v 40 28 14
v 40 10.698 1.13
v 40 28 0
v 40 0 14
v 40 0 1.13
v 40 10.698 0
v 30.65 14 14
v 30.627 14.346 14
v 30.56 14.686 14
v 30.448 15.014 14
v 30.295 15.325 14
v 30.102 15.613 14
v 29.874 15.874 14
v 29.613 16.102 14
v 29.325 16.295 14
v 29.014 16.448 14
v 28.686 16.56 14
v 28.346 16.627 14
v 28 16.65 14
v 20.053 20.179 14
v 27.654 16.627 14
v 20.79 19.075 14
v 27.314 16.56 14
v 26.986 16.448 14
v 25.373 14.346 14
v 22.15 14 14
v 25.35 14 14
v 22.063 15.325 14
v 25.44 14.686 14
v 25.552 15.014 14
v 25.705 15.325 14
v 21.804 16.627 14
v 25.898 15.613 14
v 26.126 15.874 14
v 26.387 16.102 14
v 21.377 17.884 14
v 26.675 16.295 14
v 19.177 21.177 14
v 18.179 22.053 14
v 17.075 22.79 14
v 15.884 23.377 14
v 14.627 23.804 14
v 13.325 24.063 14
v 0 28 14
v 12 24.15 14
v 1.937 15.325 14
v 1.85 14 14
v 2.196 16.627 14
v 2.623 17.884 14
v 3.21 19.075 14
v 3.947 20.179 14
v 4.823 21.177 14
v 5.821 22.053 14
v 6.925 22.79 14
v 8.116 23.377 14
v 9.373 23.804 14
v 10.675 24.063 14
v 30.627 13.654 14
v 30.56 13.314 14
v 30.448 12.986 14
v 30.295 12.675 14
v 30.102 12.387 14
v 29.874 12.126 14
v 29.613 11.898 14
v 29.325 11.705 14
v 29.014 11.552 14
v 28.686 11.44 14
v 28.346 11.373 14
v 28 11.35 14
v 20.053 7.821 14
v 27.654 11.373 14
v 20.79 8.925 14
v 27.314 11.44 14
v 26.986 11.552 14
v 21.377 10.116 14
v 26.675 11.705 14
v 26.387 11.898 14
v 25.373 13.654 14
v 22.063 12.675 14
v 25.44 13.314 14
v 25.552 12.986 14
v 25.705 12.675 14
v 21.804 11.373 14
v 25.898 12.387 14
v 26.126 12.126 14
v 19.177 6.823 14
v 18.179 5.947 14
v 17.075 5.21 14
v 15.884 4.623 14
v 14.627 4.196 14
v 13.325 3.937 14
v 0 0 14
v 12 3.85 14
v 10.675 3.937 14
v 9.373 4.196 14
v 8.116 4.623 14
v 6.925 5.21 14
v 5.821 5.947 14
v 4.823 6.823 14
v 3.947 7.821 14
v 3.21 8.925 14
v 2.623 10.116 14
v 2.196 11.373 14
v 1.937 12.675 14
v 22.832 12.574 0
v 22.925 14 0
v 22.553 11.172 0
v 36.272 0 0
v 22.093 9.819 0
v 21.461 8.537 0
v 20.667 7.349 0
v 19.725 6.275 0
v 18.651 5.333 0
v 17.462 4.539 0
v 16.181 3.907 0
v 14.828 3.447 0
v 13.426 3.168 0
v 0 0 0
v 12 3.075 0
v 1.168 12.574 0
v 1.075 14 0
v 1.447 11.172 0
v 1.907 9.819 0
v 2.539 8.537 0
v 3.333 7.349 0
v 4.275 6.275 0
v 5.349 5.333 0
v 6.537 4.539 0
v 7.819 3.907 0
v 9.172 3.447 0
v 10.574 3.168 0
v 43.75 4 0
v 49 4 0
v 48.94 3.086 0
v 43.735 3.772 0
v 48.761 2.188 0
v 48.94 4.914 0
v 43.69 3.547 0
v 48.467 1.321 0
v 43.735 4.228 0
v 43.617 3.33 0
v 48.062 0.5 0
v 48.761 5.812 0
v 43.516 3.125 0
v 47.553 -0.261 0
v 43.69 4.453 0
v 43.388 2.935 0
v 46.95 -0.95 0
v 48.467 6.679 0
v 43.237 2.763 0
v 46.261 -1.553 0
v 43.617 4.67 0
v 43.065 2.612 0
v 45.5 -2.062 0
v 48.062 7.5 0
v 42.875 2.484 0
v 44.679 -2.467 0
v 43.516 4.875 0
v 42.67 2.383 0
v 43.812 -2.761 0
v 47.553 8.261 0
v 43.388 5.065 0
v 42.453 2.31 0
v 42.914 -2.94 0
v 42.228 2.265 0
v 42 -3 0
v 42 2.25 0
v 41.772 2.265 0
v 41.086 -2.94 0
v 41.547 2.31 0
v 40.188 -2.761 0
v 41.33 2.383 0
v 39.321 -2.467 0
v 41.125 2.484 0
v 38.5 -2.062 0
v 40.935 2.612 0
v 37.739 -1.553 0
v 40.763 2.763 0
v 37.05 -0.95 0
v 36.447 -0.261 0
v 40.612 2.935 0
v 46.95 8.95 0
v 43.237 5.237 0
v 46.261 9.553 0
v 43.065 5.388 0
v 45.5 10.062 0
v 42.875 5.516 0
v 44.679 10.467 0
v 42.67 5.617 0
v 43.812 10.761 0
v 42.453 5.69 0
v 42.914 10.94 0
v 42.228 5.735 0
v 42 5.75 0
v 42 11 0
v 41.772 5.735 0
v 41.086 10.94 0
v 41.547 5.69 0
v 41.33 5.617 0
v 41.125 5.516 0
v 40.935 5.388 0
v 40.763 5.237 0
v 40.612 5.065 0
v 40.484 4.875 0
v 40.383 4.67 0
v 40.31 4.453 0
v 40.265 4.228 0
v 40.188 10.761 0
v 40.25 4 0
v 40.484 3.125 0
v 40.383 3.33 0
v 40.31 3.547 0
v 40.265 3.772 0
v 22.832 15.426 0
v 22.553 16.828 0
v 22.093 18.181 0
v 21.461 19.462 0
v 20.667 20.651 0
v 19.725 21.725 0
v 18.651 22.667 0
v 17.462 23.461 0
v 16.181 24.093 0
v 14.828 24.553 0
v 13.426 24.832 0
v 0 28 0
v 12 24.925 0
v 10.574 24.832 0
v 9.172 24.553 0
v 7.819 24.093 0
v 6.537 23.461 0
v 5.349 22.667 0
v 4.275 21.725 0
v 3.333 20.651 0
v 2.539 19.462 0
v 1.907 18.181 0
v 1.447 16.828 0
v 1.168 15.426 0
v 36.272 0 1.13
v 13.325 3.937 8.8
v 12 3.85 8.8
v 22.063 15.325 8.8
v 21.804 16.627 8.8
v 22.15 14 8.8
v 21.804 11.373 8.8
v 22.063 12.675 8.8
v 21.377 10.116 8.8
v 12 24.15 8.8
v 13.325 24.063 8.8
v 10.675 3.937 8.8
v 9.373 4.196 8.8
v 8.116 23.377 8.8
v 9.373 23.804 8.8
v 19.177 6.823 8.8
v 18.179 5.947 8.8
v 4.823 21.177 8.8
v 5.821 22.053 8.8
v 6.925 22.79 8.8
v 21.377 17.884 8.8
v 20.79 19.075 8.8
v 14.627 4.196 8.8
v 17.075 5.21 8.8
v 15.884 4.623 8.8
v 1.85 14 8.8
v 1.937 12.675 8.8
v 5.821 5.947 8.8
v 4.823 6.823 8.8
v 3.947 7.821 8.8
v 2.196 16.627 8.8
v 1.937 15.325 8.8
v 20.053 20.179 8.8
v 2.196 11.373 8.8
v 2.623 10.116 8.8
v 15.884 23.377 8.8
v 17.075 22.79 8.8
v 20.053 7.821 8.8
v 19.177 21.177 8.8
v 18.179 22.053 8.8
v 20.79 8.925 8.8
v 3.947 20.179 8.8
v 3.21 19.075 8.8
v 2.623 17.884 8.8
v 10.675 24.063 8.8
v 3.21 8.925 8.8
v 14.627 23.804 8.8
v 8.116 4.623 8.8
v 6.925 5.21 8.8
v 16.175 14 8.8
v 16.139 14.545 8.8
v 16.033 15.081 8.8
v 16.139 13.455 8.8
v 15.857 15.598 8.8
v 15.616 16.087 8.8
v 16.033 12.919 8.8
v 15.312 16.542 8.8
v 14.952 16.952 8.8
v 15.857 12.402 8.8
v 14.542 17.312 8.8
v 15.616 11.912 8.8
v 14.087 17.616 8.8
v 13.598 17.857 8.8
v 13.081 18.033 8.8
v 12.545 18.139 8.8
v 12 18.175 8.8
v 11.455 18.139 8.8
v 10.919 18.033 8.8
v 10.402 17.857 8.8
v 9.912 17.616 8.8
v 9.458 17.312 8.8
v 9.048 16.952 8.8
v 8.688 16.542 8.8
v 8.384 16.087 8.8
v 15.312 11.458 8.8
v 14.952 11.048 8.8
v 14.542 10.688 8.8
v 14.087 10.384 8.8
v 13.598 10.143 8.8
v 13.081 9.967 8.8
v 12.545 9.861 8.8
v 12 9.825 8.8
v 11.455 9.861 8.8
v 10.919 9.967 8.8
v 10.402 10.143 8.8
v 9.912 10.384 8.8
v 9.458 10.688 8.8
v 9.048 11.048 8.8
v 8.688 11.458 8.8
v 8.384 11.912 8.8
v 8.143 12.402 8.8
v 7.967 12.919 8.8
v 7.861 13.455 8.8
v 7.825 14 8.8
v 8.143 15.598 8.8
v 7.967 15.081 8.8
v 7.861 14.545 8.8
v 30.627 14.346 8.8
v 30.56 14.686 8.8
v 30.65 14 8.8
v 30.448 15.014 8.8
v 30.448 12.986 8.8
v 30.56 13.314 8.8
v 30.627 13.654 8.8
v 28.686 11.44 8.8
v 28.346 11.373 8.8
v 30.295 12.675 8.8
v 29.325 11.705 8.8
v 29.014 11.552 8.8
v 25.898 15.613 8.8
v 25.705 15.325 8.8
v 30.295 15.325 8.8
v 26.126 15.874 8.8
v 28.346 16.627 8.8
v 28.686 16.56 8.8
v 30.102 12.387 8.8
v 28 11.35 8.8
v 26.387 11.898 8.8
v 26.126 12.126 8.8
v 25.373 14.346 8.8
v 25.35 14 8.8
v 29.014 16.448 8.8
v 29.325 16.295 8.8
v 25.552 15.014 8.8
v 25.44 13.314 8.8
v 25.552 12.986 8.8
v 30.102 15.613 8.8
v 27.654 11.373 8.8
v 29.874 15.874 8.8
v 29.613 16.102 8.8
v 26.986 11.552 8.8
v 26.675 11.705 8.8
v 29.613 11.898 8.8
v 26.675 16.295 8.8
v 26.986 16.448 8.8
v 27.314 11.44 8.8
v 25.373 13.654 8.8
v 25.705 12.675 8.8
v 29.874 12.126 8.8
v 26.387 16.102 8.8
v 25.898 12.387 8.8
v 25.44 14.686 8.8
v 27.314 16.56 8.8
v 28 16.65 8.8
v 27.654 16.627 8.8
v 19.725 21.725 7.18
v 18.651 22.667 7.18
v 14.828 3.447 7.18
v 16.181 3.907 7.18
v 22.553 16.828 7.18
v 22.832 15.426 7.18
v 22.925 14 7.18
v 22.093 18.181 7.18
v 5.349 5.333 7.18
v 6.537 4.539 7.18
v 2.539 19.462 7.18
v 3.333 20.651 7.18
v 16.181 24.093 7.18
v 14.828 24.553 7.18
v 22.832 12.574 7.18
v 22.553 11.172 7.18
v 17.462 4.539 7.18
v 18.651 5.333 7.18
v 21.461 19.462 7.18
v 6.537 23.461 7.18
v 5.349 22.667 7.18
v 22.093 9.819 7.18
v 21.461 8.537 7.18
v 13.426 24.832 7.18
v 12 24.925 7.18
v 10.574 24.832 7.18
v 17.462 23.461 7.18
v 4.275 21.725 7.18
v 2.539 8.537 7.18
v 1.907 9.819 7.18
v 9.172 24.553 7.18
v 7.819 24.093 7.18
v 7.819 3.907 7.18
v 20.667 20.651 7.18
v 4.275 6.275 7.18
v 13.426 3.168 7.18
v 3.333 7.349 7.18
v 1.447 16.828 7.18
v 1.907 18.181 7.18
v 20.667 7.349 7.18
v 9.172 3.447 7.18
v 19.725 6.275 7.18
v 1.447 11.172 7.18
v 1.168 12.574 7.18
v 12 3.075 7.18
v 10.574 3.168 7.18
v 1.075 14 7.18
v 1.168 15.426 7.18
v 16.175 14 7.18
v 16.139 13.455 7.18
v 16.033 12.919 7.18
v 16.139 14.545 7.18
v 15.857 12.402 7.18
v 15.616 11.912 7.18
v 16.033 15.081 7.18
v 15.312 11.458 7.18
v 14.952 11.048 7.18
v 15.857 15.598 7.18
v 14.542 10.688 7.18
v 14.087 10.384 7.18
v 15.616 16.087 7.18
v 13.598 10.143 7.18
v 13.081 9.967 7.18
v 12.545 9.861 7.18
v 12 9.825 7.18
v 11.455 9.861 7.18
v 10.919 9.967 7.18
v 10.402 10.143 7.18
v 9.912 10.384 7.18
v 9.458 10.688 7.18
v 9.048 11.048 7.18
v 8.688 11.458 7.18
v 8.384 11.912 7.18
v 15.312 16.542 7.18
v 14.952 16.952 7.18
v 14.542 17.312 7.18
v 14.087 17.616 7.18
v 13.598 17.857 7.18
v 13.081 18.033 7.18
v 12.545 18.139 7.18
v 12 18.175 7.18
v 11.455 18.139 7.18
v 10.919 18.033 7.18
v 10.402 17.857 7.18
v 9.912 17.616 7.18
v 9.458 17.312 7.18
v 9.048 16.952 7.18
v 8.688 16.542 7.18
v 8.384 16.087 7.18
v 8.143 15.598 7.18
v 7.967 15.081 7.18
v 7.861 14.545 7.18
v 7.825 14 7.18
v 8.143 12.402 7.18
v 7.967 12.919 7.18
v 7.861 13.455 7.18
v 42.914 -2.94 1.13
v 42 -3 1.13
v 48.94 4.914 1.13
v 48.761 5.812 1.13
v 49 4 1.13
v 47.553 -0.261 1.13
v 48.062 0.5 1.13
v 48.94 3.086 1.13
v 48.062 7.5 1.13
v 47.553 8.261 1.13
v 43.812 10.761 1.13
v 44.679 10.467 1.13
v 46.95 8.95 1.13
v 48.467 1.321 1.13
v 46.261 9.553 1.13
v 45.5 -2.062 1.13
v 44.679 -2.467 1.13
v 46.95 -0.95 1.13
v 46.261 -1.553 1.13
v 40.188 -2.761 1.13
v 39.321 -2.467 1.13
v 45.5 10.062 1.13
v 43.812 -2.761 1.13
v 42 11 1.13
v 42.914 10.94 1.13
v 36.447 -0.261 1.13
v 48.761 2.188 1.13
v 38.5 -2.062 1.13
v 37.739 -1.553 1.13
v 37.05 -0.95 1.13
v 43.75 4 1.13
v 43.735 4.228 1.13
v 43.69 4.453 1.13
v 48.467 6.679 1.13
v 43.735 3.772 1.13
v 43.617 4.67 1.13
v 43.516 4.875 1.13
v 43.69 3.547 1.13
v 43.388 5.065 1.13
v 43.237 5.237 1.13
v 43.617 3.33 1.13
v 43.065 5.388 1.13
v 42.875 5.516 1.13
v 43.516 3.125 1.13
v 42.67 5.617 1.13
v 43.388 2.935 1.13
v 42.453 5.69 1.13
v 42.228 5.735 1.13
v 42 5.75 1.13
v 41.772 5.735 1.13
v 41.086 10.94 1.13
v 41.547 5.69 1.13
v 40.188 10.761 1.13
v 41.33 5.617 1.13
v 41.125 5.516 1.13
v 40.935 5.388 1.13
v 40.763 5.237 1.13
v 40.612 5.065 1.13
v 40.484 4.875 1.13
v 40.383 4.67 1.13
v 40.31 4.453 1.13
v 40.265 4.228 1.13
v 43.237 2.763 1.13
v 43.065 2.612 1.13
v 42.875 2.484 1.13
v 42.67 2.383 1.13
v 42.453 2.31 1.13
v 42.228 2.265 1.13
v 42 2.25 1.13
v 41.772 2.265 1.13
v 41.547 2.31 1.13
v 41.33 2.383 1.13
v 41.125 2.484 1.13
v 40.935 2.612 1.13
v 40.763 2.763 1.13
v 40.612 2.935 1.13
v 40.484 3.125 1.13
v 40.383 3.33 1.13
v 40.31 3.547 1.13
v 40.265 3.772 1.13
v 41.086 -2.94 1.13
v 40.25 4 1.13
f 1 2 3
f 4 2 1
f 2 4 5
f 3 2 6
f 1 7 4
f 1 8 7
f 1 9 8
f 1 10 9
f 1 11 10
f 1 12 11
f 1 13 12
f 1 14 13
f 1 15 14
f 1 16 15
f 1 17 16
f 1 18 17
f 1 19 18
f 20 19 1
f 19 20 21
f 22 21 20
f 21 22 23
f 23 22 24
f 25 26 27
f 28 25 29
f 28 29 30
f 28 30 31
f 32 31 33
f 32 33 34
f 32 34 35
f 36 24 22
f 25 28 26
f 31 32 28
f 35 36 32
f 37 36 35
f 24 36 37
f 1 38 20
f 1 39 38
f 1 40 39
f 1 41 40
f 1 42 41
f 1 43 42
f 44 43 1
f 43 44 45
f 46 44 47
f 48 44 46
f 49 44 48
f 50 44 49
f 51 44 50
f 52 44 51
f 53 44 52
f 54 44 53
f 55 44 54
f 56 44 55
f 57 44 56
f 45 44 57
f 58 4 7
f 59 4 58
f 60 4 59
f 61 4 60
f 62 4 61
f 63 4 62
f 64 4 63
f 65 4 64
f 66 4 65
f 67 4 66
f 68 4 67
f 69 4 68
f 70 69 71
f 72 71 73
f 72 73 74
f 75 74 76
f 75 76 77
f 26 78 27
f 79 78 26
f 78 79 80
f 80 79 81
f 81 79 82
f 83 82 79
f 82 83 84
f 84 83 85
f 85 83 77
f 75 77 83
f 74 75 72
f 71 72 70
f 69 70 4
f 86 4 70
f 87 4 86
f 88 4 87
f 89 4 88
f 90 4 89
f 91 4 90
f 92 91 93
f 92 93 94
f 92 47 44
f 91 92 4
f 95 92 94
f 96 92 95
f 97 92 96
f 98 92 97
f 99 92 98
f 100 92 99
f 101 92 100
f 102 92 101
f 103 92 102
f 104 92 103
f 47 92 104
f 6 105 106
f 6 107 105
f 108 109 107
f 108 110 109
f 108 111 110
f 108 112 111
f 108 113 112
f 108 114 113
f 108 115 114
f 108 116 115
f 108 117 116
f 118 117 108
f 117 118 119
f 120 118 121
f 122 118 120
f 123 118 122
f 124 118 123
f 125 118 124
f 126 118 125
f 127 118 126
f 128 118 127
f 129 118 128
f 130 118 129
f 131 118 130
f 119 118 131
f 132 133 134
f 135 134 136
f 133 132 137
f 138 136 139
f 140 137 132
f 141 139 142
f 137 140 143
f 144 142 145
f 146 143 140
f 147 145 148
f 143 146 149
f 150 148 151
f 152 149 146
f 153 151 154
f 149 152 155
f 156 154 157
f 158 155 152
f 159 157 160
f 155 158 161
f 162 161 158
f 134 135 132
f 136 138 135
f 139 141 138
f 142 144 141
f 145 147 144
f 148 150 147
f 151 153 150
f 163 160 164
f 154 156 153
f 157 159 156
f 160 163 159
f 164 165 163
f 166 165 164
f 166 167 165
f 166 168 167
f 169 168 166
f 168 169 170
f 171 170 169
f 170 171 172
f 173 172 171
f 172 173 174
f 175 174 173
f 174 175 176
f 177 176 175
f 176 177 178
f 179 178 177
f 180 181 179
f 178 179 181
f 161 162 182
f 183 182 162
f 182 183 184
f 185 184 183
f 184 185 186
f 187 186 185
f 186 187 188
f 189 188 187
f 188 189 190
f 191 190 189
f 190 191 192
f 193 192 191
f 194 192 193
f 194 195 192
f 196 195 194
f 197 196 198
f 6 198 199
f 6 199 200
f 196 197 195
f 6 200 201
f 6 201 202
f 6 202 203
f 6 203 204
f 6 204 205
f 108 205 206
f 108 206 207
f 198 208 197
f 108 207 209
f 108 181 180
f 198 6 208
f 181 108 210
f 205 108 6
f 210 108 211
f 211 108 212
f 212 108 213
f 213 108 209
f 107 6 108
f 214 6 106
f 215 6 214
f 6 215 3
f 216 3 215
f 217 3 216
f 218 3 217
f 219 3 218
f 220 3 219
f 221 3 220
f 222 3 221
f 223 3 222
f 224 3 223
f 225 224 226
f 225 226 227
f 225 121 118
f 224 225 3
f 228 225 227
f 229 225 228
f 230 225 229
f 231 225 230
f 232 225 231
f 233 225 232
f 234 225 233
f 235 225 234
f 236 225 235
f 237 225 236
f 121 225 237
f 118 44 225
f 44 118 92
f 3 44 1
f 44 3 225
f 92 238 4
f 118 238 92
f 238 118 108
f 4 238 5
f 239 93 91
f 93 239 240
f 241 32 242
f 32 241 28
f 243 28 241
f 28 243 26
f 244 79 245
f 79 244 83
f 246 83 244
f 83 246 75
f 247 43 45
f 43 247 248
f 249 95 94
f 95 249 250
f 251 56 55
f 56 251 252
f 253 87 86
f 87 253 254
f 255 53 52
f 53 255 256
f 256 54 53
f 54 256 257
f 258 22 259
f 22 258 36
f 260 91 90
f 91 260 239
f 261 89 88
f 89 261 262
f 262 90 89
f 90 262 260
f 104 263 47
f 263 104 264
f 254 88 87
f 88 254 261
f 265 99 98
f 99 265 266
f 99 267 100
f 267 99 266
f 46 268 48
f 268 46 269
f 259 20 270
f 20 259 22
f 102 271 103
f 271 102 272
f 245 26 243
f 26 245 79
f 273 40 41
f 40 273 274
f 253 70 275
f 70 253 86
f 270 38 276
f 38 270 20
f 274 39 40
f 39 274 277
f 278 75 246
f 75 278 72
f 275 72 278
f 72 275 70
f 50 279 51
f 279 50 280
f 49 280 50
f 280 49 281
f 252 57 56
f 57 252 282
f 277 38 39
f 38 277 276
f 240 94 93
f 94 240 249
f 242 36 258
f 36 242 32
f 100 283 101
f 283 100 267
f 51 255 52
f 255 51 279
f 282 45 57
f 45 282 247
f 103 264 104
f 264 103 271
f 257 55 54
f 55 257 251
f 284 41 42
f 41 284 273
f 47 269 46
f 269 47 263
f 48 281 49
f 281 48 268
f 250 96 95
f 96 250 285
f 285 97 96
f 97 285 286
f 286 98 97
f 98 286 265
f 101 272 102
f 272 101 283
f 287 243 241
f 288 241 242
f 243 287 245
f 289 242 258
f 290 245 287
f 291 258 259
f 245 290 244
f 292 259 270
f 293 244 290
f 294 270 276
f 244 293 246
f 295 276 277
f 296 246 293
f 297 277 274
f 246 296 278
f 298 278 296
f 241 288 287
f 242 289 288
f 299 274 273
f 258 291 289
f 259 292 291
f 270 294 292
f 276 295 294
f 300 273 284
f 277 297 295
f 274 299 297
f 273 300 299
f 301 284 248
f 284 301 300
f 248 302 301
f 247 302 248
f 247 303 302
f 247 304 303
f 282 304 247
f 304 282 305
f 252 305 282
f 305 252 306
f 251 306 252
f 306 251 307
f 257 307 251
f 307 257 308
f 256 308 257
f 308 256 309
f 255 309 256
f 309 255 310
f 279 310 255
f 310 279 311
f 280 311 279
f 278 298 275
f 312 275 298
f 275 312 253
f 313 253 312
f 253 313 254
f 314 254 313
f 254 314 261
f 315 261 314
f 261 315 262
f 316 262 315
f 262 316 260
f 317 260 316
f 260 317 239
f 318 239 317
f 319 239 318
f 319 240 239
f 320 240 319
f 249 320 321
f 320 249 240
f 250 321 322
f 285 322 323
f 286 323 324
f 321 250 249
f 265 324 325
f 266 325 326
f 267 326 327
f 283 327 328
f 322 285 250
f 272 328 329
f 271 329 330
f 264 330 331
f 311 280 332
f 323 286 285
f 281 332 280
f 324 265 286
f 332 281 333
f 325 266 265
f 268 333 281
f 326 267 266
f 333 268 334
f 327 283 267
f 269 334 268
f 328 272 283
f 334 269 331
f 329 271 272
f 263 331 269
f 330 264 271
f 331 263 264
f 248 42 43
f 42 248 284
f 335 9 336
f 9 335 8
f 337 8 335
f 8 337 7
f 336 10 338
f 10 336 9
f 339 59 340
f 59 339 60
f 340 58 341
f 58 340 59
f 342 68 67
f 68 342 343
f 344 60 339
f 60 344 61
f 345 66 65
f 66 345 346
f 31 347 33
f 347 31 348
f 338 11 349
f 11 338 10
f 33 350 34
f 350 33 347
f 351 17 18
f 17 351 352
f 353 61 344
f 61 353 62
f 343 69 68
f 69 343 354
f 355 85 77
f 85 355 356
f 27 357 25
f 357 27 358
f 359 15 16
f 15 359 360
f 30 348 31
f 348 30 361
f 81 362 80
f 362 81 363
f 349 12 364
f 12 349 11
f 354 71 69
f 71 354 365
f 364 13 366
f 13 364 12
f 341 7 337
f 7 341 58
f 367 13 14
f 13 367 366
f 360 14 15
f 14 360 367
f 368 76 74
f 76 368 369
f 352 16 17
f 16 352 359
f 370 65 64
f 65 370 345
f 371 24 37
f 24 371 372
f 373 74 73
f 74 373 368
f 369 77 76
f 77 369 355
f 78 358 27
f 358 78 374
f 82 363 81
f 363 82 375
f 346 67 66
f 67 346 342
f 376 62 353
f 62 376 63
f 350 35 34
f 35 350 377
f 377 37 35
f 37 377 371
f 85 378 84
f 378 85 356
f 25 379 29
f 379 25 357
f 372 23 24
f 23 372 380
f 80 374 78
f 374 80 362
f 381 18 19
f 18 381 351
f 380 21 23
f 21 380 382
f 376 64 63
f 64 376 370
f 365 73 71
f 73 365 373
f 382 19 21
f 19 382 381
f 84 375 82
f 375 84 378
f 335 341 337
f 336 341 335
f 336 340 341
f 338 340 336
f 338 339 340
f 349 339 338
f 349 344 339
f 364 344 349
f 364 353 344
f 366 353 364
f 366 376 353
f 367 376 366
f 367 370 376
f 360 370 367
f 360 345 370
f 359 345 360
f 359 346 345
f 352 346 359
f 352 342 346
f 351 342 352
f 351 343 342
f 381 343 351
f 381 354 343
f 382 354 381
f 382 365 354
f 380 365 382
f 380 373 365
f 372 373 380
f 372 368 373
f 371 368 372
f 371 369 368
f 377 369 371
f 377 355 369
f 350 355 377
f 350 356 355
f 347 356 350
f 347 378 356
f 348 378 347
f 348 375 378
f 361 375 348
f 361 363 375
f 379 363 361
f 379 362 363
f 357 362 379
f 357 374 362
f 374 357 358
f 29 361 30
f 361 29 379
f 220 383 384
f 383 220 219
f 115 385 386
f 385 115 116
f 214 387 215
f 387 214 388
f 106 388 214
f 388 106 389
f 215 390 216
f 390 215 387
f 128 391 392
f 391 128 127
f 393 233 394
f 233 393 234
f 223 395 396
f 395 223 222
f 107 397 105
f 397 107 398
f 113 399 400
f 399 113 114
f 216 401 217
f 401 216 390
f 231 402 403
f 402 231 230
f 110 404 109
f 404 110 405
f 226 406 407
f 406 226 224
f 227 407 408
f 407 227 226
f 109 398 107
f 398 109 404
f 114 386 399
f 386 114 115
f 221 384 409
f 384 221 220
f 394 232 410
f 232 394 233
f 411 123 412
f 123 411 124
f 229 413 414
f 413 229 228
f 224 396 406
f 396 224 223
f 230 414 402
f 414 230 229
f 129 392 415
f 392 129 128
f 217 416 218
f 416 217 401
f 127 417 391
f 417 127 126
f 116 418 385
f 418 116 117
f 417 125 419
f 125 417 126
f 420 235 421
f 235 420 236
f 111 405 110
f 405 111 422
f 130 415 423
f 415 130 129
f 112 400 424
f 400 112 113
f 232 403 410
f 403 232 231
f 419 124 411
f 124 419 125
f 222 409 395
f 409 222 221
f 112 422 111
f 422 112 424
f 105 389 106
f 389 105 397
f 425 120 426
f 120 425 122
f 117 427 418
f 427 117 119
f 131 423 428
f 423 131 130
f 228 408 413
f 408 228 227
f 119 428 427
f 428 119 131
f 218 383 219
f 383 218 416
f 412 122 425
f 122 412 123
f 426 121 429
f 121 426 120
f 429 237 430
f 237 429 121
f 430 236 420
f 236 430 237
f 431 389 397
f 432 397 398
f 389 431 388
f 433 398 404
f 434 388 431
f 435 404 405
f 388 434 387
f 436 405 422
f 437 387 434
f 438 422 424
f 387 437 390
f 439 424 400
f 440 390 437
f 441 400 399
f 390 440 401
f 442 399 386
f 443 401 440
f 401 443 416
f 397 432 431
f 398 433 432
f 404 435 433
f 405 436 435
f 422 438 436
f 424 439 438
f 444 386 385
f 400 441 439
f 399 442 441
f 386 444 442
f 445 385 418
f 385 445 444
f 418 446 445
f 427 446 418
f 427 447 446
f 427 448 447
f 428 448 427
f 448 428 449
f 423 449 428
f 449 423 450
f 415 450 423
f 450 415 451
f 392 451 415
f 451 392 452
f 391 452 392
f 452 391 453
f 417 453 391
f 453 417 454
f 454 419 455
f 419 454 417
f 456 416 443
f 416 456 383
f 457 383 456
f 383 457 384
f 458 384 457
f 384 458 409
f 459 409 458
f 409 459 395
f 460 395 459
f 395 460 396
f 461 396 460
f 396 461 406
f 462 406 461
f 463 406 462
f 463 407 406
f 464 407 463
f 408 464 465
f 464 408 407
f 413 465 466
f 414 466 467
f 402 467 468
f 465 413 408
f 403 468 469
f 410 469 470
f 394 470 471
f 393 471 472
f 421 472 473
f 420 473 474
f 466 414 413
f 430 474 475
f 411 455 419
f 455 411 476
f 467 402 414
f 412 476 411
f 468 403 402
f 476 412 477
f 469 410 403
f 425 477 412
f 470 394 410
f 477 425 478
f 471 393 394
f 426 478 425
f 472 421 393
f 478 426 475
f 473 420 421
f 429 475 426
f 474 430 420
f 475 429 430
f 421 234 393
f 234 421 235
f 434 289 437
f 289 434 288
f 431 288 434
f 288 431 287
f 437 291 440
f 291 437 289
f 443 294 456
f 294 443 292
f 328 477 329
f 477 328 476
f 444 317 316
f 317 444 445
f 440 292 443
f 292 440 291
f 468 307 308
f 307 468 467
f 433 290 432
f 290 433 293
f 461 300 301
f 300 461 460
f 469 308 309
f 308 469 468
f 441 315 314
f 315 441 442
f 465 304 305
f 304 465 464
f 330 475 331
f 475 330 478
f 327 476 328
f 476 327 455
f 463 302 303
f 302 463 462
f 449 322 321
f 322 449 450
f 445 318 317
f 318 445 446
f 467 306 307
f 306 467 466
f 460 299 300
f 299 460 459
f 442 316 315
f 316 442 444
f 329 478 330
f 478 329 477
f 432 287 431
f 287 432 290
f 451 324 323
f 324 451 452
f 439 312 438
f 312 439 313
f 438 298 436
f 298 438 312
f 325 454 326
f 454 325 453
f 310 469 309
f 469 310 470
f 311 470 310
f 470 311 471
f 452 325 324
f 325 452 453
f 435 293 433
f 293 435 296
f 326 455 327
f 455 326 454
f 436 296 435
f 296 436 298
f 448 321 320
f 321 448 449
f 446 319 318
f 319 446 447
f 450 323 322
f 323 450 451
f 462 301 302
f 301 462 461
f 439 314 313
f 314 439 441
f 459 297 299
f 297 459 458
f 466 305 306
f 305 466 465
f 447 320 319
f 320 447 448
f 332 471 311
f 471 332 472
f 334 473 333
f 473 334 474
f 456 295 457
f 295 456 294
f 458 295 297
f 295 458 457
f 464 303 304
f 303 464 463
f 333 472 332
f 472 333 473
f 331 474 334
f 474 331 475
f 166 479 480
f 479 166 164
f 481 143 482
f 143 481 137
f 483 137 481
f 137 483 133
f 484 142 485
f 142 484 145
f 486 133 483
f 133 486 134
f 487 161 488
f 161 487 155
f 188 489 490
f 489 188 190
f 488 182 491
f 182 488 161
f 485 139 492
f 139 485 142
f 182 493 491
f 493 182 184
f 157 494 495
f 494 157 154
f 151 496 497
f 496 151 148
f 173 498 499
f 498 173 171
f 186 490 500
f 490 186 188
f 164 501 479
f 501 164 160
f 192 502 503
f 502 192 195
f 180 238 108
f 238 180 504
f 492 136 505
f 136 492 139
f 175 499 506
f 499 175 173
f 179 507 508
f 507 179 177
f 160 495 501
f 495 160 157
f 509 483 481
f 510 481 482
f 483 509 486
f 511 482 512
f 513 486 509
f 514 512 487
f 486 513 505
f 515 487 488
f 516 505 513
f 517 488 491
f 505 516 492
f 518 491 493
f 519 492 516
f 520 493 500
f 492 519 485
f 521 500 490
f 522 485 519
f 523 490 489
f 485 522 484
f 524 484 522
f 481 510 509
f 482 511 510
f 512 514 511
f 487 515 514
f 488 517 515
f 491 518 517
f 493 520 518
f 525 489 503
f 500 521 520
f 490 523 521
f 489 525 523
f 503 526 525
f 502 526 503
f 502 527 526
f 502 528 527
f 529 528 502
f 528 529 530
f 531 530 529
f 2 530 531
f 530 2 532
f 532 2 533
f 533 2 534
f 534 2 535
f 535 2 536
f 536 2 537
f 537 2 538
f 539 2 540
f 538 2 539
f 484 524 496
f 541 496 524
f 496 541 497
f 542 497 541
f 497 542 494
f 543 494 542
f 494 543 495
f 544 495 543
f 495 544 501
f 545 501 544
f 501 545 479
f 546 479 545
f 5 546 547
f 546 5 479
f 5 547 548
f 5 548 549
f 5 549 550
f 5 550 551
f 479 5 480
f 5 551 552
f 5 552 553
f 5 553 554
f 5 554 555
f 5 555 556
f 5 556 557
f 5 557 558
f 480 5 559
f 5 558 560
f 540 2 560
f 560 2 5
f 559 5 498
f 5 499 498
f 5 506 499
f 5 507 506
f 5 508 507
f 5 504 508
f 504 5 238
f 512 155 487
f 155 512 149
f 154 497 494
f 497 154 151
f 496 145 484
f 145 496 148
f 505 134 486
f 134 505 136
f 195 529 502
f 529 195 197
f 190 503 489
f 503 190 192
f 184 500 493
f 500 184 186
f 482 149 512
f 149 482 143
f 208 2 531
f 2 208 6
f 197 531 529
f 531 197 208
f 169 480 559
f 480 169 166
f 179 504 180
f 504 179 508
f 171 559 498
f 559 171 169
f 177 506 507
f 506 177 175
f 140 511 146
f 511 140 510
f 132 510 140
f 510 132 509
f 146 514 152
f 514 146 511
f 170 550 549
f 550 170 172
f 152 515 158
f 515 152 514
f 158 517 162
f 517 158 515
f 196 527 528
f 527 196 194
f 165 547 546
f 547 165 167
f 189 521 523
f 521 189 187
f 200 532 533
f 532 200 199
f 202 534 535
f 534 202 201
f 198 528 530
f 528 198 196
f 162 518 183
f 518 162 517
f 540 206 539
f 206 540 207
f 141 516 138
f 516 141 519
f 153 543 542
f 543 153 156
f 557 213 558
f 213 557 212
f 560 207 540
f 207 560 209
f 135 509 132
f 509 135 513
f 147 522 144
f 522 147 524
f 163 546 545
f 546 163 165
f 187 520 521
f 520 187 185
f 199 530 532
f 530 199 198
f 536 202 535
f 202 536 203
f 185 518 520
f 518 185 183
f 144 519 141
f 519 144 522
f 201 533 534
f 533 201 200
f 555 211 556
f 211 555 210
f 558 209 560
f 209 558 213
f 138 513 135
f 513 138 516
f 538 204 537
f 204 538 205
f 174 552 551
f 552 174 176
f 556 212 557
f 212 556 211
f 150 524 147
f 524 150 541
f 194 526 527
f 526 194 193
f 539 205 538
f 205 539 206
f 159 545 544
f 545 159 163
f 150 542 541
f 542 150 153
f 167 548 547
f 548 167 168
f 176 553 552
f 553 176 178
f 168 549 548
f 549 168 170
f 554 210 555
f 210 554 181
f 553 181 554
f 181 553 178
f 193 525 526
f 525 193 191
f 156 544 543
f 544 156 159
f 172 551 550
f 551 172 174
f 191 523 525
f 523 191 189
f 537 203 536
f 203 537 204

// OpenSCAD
// file: parameters.scad
// =============================================================================
// Gen-AR Stacked dual-stator mid-rotor copper-max hyper - WOUND-AWARE (HARD GATE)
// ONE mid dual-face Halbach rotor | TWO wound pancake stators | 18 coils x175 t
// =============================================================================

wire_awg            = 26;
wire_od             = 0.45;
turns               = 175;      // +10 vs Gen-AO 165; 18x175x~0.117 ~ 368 m
fill                = 0.70;
layers_per_face     = 2;
wind_build_axial    = layers_per_face * wire_od * fill;   // 0.63
wind_build_radial   = 3 * wire_od * fill;                 // 0.945

coil_id_r           = 17.5;
coil_od_r           = 61.5;
span_deg            = 34.0;     // 9 stations x 40 deg
former_web          = 1.25;     // thinner vs AO 1.30
flange_t            = 0.60;
wall                = 1.2;
slot_w              = 2.4;
mount_hole          = 3.5;
tab_len             = 7.0;

former_bare_h       = former_web + 2 * flange_t;            // 2.45
coil_envelope_h     = former_bare_h + 2 * wind_build_axial; // 3.71

run_clear           = 0.50;
gap_spacer_h        = run_clear + wind_build_axial;         // 1.13
m2m                 = coil_envelope_h + 2 * run_clear;      // 4.71 per gap

coil_stations       = 9;        // per stator; x2 = 18 total
bay_r_in            = coil_id_r - 2.0 - wind_build_radial;
bay_r_out           = coil_od_r + 2.0 + wind_build_radial;
bay_span            = span_deg + 4.0;
bay_offset          = 2.0;
bay_depth           = former_bare_h + wind_build_axial;     // wound sits in bay
stator_back_web     = 2.0;
stator_thick        = bay_depth + stator_back_web;
stator_od           = 156.0;
shaft_clear_stator  = 38.0;
coil_mount_r        = 27.0;

large_pocket_d      = 20.3;
small_pocket_d      = 5.3;
pocket_h            = 5.2;
large_n             = 8;
R_large             = 39.5;     // tighter copper overlap vs AO R=40
R_small_inner       = 26.0;
R_small_mid         = 39.5;
R_small_outer       = 56.0;
carrier_od          = 154.0;
mid_carrier_thick   = 12.0;
hub_h               = 10.0;
hub_od              = 30.0;
rotor_b_offset_deg  = 22.5;

shaft_bore          = 8.35;
bearing_d           = 21.85;
bearing_h           = 7.2;
m3_clear            = 3.5;
bolt_r_inner        = 36.0;
bolt_n_inner        = 6;
flange_bolt_r       = 72.0;
flange_bolt_n       = 6;
brace_r             = 68.0;
brace_d             = 4.3;
brace_n             = 4;

spacer_pad_od       = 14.0;
spacer_pad_id       = m3_clear;
endbell_od          = 156.0;
endbell_thick       = 8.0;
endbell_shaft_clear = 10.0;

$fn = 64;
// main file
// Gen-AR fit coupon — magnet pockets + 608 + spacer height
include <parameters.scad>;
$fn = 48;
block_w = 40; block_d = 28; block_h = 14;
difference() {
    cube([block_w, block_d, block_h]);
    translate([12, block_d/2, block_h - pocket_h])
        cylinder(d=large_pocket_d, h=pocket_h + 0.2);
    translate([28, block_d/2, block_h - pocket_h])
        cylinder(d=small_pocket_d, h=pocket_h + 0.2);
    translate([12, block_d/2, -0.02])
        cylinder(d=bearing_d, h=bearing_h);
    translate([12, block_d/2, -0.1])
        cylinder(d=shaft_bore, h=block_h + 1);
}
translate([block_w + 2, 4, 0])
    difference() {
        cylinder(d=spacer_pad_od, h=gap_spacer_h);
        translate([0, 0, -0.1]) cylinder(d=spacer_pad_id, h=gap_spacer_h + 0.2);
    }
